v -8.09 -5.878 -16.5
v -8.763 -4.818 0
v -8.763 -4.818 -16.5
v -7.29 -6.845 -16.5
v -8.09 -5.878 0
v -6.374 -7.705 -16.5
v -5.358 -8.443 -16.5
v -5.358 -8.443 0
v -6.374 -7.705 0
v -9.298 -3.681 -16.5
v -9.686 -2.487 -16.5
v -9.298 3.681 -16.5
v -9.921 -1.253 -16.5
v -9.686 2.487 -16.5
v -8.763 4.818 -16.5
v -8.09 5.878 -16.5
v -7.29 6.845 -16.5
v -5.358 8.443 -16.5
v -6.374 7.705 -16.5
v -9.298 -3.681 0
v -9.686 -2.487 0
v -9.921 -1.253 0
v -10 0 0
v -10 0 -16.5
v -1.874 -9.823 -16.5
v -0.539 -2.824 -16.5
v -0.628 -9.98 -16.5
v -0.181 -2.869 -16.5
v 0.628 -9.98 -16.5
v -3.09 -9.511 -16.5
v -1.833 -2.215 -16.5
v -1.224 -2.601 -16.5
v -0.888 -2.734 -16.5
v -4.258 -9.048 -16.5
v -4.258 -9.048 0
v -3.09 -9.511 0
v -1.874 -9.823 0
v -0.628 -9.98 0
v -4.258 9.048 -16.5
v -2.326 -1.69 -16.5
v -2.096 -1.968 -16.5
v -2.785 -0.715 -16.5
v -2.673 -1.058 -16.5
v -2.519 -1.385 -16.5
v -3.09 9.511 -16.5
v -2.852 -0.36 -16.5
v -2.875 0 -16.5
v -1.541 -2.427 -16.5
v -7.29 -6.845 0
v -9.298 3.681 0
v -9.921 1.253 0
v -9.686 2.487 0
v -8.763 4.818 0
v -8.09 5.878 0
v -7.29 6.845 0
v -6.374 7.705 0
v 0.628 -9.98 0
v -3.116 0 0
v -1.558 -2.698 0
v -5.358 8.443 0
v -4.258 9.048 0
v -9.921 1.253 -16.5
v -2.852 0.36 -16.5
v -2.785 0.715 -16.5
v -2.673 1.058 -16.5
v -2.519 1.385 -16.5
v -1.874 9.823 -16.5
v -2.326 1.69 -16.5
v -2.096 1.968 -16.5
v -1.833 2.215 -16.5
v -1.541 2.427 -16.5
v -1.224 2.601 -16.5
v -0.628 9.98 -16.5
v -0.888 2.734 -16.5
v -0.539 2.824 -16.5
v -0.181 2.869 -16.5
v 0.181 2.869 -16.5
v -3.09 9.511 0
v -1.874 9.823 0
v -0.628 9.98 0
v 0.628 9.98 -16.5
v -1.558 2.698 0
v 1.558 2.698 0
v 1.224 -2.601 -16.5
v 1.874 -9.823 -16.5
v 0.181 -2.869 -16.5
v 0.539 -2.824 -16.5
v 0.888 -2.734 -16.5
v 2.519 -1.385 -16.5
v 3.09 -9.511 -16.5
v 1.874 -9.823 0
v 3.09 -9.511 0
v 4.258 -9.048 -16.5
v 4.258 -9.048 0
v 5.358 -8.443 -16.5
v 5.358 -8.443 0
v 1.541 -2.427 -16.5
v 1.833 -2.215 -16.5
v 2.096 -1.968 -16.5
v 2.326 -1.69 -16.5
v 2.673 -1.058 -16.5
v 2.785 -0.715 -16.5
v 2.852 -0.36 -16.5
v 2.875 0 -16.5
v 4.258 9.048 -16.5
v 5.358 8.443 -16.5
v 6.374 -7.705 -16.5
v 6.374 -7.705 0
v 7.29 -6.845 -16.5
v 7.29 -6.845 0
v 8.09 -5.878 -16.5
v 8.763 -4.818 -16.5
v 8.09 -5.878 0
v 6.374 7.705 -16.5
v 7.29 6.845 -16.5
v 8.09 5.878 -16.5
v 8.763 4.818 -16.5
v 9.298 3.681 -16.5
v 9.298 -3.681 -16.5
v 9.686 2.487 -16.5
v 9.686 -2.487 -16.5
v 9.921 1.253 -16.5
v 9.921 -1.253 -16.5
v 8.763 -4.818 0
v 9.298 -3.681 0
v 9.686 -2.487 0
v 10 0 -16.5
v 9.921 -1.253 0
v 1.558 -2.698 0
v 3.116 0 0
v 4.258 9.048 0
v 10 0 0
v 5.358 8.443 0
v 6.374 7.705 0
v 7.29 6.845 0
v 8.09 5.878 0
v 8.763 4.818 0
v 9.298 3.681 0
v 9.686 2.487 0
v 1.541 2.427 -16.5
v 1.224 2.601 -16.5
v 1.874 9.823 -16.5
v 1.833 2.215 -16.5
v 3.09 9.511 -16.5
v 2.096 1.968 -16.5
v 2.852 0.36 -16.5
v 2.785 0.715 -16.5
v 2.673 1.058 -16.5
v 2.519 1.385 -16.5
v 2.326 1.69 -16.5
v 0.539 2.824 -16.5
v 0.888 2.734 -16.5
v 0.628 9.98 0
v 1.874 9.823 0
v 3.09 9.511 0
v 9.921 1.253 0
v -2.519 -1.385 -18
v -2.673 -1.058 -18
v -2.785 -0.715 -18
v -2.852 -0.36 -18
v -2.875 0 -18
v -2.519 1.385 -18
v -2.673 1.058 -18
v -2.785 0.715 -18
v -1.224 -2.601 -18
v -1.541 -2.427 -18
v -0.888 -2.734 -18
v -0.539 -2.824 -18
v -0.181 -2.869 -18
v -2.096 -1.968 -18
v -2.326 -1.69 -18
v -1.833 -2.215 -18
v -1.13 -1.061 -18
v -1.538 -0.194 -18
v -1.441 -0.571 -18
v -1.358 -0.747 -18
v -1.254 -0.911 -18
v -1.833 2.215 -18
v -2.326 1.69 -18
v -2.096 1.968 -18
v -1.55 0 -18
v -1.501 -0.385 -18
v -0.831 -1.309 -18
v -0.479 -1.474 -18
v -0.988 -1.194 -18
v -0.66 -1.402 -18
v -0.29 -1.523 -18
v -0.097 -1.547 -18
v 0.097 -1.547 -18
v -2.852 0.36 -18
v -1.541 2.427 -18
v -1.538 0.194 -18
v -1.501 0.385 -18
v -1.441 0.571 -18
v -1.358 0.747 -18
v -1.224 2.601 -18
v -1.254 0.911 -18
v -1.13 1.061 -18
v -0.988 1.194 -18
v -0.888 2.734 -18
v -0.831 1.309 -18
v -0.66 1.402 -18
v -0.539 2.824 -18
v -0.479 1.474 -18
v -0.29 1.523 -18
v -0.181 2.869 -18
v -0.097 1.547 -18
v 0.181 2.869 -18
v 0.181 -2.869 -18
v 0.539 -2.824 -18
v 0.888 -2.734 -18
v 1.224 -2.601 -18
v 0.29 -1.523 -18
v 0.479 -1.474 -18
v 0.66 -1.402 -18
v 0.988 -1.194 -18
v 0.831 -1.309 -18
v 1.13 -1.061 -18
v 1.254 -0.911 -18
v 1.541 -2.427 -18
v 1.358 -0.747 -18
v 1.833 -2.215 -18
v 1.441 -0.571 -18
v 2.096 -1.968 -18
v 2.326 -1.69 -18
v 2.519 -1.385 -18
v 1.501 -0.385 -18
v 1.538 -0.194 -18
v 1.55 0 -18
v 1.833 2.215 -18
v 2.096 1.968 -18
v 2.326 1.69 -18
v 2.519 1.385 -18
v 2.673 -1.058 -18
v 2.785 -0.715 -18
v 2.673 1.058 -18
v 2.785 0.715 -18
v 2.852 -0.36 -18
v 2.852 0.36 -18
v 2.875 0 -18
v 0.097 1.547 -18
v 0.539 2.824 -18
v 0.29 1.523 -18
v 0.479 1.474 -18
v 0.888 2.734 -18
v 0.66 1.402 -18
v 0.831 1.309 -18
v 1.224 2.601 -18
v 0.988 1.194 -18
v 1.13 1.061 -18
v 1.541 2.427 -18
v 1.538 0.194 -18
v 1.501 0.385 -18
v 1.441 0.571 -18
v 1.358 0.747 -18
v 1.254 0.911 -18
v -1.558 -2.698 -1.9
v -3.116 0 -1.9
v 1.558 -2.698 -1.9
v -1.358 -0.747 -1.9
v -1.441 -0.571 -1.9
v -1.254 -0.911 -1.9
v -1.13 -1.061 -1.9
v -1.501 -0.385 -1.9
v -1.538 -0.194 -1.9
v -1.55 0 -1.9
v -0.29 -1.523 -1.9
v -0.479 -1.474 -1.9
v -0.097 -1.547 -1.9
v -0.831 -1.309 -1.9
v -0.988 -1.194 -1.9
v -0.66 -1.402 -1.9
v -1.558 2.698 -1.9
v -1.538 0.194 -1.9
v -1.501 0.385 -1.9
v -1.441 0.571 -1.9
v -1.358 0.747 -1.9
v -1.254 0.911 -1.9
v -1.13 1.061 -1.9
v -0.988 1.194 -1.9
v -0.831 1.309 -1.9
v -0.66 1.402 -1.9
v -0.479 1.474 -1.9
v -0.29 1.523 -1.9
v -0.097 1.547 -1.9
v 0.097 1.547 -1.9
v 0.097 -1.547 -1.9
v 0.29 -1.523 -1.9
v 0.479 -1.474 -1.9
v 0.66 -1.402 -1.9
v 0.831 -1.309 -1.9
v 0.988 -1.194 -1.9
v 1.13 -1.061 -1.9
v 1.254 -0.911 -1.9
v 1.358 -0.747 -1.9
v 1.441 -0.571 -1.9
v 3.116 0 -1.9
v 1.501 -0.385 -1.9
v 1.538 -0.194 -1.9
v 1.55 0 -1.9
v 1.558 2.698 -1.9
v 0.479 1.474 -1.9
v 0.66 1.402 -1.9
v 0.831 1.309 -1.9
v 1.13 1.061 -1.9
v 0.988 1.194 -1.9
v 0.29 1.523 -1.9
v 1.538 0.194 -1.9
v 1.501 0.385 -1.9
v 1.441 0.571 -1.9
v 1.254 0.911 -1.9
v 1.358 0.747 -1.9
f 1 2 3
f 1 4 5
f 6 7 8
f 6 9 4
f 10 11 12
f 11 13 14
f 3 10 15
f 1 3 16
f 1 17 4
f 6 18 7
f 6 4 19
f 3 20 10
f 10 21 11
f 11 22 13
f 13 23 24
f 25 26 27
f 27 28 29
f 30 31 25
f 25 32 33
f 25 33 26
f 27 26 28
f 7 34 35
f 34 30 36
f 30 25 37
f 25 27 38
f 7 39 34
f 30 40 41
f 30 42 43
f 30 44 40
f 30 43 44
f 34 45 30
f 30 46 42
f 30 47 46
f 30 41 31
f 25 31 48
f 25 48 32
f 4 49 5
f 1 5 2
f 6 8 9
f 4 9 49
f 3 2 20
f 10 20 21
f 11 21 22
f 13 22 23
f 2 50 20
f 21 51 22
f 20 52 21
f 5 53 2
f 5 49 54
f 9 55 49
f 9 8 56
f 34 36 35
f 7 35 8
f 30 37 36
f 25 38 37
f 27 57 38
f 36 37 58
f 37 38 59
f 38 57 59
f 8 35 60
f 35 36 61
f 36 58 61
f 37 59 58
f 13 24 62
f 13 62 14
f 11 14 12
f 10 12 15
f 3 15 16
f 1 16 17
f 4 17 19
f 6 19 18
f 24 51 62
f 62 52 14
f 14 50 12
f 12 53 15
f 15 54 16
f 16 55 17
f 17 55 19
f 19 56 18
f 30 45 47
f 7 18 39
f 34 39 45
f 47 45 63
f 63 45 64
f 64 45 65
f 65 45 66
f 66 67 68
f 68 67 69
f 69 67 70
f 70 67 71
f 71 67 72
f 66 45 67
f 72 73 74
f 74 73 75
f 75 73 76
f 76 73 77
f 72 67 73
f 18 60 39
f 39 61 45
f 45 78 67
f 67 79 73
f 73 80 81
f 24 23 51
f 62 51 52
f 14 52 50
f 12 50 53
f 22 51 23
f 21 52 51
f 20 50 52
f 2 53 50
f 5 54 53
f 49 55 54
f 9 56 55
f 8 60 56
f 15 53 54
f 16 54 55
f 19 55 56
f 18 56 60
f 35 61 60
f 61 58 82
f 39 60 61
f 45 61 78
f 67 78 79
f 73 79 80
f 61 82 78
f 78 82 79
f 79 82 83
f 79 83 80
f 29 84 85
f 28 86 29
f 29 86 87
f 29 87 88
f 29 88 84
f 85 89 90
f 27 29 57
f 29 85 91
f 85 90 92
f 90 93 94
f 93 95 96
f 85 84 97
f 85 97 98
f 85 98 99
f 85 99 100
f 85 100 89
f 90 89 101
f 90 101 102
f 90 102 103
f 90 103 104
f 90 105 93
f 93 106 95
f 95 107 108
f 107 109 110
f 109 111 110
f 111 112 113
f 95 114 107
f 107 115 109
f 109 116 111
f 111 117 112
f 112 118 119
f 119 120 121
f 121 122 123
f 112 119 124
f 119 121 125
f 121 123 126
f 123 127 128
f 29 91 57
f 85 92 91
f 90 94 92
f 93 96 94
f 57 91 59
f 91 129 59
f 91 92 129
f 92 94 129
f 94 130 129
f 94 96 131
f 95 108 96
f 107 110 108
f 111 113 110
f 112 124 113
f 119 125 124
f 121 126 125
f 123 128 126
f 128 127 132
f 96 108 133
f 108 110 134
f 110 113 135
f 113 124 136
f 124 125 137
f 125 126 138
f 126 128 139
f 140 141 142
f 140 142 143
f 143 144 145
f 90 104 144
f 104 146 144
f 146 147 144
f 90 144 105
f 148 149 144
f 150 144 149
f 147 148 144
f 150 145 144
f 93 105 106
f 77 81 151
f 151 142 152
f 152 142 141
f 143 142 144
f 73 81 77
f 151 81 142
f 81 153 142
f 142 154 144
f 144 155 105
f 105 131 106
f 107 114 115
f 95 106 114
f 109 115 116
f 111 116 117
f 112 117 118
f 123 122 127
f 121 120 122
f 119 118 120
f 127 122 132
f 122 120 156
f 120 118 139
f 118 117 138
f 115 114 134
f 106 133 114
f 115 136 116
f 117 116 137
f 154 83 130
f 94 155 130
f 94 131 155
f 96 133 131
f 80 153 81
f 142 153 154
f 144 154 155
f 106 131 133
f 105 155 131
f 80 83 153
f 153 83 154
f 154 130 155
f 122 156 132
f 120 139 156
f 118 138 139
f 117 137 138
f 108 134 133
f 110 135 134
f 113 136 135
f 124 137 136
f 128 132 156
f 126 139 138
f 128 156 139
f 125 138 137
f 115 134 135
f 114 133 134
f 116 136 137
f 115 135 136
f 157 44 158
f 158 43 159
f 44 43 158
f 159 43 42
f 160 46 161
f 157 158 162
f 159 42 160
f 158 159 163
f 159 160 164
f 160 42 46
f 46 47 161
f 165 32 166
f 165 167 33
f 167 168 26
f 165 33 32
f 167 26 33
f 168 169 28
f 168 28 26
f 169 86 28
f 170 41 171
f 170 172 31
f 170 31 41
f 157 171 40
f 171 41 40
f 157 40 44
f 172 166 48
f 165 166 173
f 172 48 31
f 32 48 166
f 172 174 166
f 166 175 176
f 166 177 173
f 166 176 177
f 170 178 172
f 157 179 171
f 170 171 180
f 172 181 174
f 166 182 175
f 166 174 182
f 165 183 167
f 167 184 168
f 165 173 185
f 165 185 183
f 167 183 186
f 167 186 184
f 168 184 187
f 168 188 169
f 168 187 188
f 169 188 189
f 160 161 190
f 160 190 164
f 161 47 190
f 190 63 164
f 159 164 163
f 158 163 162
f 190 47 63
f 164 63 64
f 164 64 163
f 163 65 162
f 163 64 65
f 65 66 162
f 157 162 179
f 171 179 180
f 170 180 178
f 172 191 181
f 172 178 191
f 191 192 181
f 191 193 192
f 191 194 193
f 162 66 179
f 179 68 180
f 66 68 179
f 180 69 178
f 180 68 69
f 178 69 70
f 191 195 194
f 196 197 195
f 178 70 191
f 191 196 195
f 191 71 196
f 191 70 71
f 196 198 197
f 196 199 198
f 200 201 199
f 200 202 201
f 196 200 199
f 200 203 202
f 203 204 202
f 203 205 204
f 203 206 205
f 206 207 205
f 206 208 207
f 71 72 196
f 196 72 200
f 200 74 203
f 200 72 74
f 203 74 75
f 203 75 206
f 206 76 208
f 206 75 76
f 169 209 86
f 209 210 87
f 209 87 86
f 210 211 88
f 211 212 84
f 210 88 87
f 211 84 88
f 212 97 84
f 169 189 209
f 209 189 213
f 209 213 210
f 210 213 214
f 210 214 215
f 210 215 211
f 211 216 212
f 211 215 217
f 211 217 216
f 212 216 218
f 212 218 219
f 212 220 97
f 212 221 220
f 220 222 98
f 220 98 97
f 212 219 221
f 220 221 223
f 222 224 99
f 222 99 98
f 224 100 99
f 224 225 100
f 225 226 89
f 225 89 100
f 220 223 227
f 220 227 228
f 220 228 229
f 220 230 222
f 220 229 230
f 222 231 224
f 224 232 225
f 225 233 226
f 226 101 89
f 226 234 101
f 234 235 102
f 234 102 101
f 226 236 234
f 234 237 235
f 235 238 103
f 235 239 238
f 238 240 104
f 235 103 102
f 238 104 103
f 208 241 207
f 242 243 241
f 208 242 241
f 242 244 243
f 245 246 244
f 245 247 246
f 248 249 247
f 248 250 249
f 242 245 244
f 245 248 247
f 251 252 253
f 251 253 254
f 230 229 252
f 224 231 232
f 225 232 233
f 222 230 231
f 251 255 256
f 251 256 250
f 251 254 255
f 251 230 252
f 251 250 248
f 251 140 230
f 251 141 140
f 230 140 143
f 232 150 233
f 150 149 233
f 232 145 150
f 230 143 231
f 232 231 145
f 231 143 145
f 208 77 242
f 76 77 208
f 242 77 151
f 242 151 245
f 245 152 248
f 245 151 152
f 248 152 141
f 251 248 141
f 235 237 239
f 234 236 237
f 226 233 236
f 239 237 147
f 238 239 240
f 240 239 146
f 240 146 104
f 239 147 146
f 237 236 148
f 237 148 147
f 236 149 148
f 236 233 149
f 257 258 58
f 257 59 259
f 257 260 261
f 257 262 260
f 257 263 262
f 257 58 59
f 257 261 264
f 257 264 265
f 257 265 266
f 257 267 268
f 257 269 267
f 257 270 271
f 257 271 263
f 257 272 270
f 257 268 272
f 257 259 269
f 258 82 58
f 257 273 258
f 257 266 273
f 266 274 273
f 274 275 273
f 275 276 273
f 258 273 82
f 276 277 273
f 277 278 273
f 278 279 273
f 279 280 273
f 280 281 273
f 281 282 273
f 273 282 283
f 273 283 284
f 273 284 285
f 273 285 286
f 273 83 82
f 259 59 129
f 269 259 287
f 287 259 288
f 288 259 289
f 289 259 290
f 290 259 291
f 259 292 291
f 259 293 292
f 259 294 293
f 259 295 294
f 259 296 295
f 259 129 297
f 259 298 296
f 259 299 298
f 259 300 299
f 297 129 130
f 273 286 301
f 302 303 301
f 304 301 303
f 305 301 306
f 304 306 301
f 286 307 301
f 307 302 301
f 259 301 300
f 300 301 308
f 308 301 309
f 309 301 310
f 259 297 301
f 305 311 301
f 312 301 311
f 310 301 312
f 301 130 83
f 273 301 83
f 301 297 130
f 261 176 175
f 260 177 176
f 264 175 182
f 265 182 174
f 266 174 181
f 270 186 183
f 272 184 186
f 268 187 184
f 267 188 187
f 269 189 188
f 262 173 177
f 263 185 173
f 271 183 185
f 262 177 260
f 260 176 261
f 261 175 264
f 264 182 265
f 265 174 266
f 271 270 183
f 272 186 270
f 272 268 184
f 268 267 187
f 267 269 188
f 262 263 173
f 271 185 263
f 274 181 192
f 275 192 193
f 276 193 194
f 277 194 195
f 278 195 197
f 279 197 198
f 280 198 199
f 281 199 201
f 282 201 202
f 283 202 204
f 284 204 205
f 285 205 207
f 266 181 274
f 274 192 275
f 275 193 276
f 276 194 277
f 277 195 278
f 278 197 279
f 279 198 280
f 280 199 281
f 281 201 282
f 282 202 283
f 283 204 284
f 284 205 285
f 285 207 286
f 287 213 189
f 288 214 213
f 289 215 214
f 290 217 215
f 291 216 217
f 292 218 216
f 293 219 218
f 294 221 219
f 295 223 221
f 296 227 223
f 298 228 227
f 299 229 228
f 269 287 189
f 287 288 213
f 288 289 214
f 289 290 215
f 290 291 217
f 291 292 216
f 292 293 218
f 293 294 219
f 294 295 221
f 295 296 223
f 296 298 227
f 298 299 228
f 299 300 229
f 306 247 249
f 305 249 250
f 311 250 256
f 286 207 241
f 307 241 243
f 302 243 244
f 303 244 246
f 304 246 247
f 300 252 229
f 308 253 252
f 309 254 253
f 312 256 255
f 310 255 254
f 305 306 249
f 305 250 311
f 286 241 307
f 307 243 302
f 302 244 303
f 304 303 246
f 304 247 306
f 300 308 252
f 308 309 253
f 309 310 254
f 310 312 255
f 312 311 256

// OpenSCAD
$fn = 50;

difference() {
	union() {
		translate(v = [0, 0, -16.5]) {
			cylinder(h = 16.5, r = 10.0);
		}
		#translate(v = [0, 0, -18.0]) {
			cylinder(h = 18, r = 2.875);
		}
	}
	union() {
		translate(v = [0, 0, 0]) {
			rotate(a = [0, 0, 0]) {
				difference() {
					union() {
						translate(v = [0, 0, -1.9]) {
							linear_extrude(height = 1.9) {
								polygon(points = [[3.1158, 0.0], [1.5579000000000005, 2.698361953111554], [-1.5578999999999994, 2.6983619531115544], [-3.1158, 3.815754496783323e-16], [-1.5579000000000014, -2.6983619531115535], [1.557899999999998, -2.6983619531115552]]);
							}
						}
					}
					union();
				}
			}
		}
		#translate(v = [0, 0, -100.0]) {
			cylinder(h = 200, r = 1.55);
		}
	}
}
